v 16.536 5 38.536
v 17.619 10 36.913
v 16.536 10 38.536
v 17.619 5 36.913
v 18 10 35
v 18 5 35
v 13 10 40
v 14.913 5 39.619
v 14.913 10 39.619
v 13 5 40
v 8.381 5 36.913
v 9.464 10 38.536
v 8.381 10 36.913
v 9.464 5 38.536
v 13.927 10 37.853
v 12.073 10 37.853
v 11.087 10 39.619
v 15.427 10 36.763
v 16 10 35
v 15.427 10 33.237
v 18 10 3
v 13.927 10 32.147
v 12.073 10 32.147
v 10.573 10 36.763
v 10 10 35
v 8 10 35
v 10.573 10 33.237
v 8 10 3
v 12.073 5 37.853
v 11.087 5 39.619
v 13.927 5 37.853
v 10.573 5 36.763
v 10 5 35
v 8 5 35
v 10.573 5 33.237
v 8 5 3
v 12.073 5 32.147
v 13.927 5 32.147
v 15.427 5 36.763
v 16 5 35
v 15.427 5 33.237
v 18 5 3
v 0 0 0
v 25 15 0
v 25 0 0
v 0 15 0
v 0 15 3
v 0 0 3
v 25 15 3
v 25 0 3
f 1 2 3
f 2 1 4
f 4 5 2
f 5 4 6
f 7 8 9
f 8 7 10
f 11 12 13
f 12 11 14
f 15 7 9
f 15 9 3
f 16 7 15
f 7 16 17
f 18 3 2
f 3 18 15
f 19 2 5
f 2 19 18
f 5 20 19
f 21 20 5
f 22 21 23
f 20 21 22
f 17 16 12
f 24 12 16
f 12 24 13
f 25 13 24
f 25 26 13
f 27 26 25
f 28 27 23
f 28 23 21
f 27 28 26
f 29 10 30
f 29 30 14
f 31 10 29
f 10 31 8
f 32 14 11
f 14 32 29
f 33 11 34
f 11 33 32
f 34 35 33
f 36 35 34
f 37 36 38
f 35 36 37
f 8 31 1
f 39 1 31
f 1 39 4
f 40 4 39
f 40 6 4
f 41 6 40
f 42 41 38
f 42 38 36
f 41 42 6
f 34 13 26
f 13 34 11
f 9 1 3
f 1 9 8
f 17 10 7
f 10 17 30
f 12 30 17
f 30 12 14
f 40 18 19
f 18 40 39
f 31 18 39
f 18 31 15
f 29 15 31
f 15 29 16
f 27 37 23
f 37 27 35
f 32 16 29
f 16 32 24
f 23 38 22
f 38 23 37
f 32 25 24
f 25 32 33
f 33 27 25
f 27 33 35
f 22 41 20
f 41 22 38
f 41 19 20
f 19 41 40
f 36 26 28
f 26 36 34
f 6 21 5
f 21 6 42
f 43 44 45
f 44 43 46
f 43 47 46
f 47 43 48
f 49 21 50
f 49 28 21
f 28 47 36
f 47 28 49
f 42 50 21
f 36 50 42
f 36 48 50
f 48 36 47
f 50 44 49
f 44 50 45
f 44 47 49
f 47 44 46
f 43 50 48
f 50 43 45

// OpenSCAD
cube([25, 15, 3]); //bottom cube

difference(){ //top cube
    translate([13,10,35]) rotate([90]) linear_extrude(height=5) circle(d=10); // circle to round off top
    translate([13,10,35]) rotate([90]) cylinder(h = 20, d=6); //hole
};
difference(){ 
    translate([8,5,0]) cube([10, 5, 35]); //top cube
    translate([13,10,35]) rotate([90]) cylinder(h = 20, d=6); // hole
};
